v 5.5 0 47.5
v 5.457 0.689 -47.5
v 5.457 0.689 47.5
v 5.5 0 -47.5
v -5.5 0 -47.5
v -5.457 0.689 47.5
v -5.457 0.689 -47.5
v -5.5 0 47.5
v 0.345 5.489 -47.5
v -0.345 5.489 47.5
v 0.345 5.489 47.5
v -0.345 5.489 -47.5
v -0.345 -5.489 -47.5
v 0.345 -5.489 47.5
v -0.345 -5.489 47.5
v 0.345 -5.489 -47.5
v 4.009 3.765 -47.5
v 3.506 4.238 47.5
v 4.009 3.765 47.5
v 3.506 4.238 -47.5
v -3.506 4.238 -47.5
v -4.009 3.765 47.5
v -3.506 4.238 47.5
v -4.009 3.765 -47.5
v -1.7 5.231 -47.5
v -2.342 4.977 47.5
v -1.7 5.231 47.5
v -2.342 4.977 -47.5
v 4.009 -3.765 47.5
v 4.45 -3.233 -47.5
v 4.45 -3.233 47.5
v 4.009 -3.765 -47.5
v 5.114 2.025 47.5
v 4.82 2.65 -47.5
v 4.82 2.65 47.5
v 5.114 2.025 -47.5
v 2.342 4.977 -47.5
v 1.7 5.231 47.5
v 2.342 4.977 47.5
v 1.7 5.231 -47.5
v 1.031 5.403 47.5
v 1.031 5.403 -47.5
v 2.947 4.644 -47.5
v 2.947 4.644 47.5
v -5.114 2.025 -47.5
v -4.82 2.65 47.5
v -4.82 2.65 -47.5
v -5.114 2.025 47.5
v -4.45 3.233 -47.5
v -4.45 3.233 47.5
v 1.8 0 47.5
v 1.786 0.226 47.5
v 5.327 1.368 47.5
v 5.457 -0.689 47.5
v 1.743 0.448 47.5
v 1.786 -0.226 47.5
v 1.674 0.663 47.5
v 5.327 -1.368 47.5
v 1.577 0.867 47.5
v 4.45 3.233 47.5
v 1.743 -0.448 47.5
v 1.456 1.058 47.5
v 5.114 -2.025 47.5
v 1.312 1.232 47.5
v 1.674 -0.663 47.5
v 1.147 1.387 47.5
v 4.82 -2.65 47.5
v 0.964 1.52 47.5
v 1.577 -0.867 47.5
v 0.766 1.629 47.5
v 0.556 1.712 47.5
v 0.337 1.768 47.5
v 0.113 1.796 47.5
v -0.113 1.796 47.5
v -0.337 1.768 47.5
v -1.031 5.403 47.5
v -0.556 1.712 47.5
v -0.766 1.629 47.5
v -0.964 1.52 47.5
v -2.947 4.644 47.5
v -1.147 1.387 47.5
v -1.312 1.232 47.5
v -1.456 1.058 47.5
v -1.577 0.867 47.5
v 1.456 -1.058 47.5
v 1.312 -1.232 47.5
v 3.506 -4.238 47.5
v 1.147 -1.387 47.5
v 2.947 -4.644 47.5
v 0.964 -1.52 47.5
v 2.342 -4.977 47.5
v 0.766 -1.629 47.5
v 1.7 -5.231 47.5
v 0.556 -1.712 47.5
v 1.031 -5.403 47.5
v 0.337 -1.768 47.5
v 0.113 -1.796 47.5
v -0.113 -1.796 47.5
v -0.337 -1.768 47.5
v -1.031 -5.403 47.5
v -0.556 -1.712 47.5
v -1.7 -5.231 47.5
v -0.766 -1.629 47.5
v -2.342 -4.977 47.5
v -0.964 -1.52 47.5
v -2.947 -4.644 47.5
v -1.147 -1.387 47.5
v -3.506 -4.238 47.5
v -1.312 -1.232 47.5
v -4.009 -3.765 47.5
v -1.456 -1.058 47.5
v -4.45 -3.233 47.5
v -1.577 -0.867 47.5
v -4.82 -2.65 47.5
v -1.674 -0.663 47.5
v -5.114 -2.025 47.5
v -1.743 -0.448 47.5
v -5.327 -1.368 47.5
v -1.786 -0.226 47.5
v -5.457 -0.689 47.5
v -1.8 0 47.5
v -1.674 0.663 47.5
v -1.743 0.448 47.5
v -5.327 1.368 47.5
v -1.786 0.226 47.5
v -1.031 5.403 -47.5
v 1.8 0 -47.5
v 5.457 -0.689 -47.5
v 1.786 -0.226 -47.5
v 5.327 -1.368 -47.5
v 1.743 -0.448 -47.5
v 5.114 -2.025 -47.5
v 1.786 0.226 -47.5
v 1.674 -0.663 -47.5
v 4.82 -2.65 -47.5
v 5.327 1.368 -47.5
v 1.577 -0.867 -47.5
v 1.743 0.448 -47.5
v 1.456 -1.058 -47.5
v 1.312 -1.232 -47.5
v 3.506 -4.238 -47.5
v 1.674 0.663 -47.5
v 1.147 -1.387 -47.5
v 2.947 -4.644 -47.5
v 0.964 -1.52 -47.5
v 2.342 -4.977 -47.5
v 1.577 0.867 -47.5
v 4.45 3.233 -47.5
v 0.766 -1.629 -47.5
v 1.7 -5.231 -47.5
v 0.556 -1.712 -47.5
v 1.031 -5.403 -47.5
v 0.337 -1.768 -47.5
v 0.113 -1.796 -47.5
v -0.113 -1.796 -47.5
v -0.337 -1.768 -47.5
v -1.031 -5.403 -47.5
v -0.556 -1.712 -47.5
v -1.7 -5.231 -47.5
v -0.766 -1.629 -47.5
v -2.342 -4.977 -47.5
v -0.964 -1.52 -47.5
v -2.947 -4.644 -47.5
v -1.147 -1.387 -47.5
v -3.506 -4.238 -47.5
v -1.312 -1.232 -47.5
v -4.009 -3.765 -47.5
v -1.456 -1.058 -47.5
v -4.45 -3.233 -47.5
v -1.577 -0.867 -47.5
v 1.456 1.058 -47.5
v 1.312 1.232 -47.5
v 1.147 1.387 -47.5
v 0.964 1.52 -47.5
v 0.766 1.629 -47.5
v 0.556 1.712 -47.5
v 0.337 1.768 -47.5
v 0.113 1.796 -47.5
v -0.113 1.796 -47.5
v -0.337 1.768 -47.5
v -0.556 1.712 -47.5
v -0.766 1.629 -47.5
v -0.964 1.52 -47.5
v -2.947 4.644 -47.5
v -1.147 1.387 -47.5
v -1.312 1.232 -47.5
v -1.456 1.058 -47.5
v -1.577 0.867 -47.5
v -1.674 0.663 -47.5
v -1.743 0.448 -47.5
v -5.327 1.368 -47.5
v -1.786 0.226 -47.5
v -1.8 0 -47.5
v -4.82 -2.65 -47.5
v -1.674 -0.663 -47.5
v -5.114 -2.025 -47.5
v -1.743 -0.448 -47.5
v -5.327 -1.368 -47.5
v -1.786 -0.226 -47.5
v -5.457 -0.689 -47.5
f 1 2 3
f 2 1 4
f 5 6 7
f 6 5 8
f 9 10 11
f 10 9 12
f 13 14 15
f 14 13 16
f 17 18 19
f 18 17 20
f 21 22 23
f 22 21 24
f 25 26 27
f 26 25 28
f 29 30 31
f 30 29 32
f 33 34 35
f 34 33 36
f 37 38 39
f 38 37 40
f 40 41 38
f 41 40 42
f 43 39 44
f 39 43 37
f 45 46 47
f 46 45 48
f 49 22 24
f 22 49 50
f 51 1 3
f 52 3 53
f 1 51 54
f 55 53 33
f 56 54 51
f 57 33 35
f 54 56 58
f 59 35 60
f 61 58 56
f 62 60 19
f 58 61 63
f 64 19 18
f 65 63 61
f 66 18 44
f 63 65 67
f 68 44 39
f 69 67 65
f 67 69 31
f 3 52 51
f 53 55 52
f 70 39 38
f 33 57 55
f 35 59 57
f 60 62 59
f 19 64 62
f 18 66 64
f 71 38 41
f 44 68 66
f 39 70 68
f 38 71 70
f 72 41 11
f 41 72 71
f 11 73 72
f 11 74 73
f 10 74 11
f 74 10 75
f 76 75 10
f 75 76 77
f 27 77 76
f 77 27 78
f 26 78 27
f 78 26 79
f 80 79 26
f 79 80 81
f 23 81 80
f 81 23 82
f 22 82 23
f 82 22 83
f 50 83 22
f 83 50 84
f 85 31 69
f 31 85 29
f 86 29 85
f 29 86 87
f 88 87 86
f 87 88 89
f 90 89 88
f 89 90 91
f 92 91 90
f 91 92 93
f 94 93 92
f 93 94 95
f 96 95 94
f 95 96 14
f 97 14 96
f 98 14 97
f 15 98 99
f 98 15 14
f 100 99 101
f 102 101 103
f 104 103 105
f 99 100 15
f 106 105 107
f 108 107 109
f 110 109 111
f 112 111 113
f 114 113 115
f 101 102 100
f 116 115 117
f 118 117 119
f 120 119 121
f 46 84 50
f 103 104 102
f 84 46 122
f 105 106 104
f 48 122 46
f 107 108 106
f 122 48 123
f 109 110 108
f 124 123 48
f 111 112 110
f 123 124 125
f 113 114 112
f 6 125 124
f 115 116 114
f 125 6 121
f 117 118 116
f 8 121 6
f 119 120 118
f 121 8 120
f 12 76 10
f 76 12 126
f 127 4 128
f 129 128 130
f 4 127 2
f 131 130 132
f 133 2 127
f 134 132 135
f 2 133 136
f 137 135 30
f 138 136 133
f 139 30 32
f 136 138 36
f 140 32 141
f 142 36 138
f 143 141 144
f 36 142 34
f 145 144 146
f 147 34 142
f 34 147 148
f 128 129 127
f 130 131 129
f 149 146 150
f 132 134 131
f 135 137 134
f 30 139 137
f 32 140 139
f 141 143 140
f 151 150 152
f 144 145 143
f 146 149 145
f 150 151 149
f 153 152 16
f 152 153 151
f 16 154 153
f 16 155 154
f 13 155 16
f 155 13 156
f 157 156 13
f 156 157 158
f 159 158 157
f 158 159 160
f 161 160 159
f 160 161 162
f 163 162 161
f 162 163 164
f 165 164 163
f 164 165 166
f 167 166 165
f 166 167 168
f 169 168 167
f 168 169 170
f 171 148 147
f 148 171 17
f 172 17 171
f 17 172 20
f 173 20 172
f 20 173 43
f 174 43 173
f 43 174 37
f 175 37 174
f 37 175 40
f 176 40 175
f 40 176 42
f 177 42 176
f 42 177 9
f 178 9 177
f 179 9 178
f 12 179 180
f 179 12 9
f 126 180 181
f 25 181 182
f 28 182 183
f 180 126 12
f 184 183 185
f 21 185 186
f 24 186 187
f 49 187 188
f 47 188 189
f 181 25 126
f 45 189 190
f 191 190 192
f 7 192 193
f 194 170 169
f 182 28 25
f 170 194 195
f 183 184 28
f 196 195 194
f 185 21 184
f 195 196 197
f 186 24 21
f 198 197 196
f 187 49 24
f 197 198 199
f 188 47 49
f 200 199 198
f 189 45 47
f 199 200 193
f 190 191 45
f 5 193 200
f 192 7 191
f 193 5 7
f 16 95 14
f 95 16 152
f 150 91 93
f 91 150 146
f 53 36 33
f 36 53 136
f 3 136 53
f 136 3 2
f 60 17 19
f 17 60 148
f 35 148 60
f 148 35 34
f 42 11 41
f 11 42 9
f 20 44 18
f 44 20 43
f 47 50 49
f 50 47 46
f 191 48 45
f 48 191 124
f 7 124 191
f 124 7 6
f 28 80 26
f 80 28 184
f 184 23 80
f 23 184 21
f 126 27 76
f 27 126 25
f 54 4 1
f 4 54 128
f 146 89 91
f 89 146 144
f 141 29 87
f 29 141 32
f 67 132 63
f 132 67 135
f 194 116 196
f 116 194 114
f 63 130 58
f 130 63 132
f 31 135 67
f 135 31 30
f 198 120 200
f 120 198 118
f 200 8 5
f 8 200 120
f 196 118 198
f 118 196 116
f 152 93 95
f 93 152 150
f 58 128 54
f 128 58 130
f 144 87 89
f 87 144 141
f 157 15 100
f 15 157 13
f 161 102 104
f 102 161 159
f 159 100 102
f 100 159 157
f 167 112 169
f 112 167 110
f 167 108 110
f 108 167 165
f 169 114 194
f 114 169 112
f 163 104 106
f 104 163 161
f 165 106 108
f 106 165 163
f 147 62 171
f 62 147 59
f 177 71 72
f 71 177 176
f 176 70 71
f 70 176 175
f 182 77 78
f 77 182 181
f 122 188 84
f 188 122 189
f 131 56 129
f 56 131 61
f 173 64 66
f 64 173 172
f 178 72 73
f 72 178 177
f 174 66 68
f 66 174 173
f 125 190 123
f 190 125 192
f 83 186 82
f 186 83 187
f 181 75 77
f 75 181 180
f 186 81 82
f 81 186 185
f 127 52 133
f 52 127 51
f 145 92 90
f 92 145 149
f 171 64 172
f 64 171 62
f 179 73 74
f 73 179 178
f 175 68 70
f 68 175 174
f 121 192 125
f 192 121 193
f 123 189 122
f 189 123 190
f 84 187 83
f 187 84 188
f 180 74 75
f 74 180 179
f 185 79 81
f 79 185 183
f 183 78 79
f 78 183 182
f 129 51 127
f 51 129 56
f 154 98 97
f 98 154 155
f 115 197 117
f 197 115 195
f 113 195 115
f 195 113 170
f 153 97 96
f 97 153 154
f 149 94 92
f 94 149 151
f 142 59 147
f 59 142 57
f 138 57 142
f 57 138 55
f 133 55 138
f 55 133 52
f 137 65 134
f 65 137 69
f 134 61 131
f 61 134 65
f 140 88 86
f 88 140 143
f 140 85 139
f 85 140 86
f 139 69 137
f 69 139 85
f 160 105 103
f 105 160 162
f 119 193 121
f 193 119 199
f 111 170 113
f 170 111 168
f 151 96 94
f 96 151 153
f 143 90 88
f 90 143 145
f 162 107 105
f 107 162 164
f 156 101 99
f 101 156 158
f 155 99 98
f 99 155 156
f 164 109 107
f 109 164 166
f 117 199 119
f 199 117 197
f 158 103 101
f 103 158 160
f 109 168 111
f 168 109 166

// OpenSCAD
$fn = 50;


difference() {
	union() {
		translate(v = [0, 0, -47.5000000000]) {
			cylinder(h = 95, r = 5.5000000000);
		}
	}
	union() {
		translate(v = [0, 0, -100.0000000000]) {
			cylinder(h = 200, r = 1.8000000000);
		}
	}
}
